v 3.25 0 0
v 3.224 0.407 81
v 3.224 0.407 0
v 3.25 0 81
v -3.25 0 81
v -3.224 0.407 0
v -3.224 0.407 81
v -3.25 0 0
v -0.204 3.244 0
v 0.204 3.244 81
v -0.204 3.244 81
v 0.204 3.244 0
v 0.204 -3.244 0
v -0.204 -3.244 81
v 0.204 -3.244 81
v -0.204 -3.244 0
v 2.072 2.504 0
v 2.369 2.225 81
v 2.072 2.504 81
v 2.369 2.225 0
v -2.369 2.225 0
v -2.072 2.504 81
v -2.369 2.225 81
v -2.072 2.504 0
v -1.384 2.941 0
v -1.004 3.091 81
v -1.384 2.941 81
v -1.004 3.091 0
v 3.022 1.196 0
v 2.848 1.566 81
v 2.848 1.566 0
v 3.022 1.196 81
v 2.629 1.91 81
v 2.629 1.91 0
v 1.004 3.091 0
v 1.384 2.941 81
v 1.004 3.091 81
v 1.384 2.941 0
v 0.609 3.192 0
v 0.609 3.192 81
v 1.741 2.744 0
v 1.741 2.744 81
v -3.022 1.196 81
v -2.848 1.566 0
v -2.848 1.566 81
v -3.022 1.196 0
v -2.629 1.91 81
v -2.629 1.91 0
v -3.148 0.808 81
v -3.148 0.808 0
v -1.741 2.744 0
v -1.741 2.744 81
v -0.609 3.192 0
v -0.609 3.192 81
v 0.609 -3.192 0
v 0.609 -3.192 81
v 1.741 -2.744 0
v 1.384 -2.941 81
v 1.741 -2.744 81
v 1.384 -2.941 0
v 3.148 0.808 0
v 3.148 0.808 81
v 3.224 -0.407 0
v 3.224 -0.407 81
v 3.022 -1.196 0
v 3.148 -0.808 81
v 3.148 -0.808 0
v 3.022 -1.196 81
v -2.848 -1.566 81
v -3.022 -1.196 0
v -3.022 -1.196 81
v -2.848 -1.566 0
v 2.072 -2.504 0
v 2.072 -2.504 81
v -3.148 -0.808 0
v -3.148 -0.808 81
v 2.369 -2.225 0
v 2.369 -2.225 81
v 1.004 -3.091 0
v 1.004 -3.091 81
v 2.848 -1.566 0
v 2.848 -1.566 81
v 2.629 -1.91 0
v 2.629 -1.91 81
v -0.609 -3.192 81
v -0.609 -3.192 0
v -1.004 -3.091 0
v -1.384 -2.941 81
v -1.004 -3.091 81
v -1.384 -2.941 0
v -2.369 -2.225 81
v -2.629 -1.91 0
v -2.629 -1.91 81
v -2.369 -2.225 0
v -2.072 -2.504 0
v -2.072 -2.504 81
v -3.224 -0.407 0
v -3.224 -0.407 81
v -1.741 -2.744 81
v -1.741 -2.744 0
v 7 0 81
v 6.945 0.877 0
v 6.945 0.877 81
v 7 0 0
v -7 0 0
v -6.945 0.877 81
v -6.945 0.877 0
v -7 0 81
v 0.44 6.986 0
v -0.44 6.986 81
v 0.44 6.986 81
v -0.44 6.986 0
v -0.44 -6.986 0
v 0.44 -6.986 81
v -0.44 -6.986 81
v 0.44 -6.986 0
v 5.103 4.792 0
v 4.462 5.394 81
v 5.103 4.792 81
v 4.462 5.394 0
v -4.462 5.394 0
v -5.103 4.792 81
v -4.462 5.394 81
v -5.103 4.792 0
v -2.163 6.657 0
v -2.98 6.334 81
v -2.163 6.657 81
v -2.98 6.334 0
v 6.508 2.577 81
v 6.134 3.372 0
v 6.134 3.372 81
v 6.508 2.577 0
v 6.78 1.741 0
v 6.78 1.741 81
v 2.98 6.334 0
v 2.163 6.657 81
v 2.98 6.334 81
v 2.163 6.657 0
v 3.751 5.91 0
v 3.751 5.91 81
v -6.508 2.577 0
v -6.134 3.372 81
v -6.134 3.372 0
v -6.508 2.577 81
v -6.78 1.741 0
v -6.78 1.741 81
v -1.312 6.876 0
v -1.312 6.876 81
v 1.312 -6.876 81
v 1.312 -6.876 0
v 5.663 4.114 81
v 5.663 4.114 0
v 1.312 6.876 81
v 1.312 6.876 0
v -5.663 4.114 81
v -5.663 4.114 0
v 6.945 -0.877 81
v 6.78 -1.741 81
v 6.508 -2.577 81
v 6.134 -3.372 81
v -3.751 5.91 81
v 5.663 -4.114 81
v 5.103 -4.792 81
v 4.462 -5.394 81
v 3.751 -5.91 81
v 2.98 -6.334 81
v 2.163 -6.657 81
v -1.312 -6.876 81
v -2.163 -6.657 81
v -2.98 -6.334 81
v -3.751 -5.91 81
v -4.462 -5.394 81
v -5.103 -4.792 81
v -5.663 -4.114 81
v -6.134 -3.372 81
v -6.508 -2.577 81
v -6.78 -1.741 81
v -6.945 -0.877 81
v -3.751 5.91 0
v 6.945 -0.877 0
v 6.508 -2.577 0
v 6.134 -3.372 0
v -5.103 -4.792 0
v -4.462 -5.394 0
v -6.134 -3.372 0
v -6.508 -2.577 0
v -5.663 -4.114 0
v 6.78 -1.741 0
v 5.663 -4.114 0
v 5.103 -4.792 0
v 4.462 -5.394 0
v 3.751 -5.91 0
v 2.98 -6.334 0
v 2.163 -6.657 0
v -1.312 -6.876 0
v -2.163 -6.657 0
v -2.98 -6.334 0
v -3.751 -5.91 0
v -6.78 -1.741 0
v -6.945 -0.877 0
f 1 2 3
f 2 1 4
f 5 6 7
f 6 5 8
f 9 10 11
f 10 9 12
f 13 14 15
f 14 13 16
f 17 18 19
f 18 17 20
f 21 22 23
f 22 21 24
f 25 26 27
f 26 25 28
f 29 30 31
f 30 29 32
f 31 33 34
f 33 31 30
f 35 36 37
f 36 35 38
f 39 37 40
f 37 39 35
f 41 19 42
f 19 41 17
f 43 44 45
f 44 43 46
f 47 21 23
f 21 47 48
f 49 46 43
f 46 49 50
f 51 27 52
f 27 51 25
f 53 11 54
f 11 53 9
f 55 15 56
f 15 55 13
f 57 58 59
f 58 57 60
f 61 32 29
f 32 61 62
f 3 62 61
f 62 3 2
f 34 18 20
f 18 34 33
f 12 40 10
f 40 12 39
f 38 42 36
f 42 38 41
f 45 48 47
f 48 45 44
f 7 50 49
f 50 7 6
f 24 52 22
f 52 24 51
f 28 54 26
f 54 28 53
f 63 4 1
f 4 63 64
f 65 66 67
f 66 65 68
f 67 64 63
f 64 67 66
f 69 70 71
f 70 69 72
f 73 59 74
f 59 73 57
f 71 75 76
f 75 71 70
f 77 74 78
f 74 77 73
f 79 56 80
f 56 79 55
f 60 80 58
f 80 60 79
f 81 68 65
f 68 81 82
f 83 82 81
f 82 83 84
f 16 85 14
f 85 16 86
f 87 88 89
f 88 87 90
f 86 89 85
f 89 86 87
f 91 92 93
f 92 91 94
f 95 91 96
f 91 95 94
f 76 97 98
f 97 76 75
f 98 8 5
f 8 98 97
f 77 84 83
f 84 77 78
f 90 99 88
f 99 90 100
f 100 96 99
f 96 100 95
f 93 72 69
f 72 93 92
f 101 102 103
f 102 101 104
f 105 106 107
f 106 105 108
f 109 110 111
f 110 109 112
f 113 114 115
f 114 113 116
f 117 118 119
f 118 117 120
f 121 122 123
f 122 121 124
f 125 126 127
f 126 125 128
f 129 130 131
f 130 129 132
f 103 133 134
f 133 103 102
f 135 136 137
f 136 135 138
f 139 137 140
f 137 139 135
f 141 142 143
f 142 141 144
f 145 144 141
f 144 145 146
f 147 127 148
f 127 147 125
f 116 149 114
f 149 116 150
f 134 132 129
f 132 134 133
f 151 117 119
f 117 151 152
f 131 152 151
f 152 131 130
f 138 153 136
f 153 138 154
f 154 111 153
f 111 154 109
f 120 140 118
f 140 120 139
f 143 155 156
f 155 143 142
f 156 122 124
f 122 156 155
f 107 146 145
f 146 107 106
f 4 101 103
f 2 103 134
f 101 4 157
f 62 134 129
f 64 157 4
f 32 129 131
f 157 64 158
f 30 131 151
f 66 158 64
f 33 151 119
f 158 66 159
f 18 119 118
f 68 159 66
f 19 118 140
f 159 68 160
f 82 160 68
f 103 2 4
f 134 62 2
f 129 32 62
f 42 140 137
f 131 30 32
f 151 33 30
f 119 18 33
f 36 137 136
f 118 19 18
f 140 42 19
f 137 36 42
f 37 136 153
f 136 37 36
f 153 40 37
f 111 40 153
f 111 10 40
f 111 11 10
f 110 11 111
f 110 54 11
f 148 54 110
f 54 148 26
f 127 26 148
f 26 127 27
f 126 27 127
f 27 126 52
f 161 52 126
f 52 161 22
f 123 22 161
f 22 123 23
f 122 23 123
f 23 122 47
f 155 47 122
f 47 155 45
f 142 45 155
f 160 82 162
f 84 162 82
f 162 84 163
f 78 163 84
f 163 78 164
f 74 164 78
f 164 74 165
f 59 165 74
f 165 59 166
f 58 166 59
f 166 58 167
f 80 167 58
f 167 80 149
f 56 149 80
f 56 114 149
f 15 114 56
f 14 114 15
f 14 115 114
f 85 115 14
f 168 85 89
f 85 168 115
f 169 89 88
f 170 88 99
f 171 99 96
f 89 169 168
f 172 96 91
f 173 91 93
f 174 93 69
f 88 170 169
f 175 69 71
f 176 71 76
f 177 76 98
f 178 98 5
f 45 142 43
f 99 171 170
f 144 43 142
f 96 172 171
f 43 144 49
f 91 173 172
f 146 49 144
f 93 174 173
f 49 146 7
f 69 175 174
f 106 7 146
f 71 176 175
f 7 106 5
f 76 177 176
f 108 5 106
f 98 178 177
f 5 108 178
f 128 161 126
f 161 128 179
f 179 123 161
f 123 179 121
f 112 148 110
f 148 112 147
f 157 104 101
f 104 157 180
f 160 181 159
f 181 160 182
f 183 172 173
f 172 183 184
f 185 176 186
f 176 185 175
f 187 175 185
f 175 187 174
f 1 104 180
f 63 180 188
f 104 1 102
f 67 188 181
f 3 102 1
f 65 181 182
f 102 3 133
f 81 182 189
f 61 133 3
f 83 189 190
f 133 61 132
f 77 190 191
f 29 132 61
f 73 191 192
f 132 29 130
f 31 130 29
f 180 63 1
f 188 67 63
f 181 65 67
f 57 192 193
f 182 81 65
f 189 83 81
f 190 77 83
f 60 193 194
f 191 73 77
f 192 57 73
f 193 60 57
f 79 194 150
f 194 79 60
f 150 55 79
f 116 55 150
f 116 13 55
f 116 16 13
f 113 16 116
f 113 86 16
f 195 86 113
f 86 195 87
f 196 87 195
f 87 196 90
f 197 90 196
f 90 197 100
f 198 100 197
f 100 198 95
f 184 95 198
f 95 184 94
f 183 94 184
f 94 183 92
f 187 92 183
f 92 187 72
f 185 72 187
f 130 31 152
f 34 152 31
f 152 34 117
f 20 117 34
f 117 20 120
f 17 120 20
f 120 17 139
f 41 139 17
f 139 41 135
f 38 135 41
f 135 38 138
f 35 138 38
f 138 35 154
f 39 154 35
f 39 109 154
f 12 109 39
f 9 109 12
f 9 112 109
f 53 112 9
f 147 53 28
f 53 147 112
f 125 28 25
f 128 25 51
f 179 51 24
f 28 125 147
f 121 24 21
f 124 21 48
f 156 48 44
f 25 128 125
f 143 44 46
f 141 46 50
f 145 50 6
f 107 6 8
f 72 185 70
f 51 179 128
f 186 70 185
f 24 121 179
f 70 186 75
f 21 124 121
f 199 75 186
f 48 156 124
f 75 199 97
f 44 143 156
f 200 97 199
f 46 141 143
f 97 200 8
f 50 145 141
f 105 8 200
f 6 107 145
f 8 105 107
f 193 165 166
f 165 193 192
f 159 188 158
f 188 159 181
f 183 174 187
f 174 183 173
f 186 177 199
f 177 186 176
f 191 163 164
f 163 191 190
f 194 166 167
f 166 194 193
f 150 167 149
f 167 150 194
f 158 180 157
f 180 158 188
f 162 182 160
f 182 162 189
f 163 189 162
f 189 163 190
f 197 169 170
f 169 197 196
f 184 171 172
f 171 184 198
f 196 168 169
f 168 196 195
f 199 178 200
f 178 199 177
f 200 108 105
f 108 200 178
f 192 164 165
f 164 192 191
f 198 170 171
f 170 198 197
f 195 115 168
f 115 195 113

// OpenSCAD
$fn = 50;


difference() {
	union() {
		cylinder(h = 81, r = 7.0000000000);
	}
	union() {
		translate(v = [0, 0, -100]) {
			cylinder(h = 200, r = 3.2500000000);
		}
		translate(v = [0, 0, -100]) {
			cylinder(h = 200, r = 1.8000000000);
		}
	}
}
